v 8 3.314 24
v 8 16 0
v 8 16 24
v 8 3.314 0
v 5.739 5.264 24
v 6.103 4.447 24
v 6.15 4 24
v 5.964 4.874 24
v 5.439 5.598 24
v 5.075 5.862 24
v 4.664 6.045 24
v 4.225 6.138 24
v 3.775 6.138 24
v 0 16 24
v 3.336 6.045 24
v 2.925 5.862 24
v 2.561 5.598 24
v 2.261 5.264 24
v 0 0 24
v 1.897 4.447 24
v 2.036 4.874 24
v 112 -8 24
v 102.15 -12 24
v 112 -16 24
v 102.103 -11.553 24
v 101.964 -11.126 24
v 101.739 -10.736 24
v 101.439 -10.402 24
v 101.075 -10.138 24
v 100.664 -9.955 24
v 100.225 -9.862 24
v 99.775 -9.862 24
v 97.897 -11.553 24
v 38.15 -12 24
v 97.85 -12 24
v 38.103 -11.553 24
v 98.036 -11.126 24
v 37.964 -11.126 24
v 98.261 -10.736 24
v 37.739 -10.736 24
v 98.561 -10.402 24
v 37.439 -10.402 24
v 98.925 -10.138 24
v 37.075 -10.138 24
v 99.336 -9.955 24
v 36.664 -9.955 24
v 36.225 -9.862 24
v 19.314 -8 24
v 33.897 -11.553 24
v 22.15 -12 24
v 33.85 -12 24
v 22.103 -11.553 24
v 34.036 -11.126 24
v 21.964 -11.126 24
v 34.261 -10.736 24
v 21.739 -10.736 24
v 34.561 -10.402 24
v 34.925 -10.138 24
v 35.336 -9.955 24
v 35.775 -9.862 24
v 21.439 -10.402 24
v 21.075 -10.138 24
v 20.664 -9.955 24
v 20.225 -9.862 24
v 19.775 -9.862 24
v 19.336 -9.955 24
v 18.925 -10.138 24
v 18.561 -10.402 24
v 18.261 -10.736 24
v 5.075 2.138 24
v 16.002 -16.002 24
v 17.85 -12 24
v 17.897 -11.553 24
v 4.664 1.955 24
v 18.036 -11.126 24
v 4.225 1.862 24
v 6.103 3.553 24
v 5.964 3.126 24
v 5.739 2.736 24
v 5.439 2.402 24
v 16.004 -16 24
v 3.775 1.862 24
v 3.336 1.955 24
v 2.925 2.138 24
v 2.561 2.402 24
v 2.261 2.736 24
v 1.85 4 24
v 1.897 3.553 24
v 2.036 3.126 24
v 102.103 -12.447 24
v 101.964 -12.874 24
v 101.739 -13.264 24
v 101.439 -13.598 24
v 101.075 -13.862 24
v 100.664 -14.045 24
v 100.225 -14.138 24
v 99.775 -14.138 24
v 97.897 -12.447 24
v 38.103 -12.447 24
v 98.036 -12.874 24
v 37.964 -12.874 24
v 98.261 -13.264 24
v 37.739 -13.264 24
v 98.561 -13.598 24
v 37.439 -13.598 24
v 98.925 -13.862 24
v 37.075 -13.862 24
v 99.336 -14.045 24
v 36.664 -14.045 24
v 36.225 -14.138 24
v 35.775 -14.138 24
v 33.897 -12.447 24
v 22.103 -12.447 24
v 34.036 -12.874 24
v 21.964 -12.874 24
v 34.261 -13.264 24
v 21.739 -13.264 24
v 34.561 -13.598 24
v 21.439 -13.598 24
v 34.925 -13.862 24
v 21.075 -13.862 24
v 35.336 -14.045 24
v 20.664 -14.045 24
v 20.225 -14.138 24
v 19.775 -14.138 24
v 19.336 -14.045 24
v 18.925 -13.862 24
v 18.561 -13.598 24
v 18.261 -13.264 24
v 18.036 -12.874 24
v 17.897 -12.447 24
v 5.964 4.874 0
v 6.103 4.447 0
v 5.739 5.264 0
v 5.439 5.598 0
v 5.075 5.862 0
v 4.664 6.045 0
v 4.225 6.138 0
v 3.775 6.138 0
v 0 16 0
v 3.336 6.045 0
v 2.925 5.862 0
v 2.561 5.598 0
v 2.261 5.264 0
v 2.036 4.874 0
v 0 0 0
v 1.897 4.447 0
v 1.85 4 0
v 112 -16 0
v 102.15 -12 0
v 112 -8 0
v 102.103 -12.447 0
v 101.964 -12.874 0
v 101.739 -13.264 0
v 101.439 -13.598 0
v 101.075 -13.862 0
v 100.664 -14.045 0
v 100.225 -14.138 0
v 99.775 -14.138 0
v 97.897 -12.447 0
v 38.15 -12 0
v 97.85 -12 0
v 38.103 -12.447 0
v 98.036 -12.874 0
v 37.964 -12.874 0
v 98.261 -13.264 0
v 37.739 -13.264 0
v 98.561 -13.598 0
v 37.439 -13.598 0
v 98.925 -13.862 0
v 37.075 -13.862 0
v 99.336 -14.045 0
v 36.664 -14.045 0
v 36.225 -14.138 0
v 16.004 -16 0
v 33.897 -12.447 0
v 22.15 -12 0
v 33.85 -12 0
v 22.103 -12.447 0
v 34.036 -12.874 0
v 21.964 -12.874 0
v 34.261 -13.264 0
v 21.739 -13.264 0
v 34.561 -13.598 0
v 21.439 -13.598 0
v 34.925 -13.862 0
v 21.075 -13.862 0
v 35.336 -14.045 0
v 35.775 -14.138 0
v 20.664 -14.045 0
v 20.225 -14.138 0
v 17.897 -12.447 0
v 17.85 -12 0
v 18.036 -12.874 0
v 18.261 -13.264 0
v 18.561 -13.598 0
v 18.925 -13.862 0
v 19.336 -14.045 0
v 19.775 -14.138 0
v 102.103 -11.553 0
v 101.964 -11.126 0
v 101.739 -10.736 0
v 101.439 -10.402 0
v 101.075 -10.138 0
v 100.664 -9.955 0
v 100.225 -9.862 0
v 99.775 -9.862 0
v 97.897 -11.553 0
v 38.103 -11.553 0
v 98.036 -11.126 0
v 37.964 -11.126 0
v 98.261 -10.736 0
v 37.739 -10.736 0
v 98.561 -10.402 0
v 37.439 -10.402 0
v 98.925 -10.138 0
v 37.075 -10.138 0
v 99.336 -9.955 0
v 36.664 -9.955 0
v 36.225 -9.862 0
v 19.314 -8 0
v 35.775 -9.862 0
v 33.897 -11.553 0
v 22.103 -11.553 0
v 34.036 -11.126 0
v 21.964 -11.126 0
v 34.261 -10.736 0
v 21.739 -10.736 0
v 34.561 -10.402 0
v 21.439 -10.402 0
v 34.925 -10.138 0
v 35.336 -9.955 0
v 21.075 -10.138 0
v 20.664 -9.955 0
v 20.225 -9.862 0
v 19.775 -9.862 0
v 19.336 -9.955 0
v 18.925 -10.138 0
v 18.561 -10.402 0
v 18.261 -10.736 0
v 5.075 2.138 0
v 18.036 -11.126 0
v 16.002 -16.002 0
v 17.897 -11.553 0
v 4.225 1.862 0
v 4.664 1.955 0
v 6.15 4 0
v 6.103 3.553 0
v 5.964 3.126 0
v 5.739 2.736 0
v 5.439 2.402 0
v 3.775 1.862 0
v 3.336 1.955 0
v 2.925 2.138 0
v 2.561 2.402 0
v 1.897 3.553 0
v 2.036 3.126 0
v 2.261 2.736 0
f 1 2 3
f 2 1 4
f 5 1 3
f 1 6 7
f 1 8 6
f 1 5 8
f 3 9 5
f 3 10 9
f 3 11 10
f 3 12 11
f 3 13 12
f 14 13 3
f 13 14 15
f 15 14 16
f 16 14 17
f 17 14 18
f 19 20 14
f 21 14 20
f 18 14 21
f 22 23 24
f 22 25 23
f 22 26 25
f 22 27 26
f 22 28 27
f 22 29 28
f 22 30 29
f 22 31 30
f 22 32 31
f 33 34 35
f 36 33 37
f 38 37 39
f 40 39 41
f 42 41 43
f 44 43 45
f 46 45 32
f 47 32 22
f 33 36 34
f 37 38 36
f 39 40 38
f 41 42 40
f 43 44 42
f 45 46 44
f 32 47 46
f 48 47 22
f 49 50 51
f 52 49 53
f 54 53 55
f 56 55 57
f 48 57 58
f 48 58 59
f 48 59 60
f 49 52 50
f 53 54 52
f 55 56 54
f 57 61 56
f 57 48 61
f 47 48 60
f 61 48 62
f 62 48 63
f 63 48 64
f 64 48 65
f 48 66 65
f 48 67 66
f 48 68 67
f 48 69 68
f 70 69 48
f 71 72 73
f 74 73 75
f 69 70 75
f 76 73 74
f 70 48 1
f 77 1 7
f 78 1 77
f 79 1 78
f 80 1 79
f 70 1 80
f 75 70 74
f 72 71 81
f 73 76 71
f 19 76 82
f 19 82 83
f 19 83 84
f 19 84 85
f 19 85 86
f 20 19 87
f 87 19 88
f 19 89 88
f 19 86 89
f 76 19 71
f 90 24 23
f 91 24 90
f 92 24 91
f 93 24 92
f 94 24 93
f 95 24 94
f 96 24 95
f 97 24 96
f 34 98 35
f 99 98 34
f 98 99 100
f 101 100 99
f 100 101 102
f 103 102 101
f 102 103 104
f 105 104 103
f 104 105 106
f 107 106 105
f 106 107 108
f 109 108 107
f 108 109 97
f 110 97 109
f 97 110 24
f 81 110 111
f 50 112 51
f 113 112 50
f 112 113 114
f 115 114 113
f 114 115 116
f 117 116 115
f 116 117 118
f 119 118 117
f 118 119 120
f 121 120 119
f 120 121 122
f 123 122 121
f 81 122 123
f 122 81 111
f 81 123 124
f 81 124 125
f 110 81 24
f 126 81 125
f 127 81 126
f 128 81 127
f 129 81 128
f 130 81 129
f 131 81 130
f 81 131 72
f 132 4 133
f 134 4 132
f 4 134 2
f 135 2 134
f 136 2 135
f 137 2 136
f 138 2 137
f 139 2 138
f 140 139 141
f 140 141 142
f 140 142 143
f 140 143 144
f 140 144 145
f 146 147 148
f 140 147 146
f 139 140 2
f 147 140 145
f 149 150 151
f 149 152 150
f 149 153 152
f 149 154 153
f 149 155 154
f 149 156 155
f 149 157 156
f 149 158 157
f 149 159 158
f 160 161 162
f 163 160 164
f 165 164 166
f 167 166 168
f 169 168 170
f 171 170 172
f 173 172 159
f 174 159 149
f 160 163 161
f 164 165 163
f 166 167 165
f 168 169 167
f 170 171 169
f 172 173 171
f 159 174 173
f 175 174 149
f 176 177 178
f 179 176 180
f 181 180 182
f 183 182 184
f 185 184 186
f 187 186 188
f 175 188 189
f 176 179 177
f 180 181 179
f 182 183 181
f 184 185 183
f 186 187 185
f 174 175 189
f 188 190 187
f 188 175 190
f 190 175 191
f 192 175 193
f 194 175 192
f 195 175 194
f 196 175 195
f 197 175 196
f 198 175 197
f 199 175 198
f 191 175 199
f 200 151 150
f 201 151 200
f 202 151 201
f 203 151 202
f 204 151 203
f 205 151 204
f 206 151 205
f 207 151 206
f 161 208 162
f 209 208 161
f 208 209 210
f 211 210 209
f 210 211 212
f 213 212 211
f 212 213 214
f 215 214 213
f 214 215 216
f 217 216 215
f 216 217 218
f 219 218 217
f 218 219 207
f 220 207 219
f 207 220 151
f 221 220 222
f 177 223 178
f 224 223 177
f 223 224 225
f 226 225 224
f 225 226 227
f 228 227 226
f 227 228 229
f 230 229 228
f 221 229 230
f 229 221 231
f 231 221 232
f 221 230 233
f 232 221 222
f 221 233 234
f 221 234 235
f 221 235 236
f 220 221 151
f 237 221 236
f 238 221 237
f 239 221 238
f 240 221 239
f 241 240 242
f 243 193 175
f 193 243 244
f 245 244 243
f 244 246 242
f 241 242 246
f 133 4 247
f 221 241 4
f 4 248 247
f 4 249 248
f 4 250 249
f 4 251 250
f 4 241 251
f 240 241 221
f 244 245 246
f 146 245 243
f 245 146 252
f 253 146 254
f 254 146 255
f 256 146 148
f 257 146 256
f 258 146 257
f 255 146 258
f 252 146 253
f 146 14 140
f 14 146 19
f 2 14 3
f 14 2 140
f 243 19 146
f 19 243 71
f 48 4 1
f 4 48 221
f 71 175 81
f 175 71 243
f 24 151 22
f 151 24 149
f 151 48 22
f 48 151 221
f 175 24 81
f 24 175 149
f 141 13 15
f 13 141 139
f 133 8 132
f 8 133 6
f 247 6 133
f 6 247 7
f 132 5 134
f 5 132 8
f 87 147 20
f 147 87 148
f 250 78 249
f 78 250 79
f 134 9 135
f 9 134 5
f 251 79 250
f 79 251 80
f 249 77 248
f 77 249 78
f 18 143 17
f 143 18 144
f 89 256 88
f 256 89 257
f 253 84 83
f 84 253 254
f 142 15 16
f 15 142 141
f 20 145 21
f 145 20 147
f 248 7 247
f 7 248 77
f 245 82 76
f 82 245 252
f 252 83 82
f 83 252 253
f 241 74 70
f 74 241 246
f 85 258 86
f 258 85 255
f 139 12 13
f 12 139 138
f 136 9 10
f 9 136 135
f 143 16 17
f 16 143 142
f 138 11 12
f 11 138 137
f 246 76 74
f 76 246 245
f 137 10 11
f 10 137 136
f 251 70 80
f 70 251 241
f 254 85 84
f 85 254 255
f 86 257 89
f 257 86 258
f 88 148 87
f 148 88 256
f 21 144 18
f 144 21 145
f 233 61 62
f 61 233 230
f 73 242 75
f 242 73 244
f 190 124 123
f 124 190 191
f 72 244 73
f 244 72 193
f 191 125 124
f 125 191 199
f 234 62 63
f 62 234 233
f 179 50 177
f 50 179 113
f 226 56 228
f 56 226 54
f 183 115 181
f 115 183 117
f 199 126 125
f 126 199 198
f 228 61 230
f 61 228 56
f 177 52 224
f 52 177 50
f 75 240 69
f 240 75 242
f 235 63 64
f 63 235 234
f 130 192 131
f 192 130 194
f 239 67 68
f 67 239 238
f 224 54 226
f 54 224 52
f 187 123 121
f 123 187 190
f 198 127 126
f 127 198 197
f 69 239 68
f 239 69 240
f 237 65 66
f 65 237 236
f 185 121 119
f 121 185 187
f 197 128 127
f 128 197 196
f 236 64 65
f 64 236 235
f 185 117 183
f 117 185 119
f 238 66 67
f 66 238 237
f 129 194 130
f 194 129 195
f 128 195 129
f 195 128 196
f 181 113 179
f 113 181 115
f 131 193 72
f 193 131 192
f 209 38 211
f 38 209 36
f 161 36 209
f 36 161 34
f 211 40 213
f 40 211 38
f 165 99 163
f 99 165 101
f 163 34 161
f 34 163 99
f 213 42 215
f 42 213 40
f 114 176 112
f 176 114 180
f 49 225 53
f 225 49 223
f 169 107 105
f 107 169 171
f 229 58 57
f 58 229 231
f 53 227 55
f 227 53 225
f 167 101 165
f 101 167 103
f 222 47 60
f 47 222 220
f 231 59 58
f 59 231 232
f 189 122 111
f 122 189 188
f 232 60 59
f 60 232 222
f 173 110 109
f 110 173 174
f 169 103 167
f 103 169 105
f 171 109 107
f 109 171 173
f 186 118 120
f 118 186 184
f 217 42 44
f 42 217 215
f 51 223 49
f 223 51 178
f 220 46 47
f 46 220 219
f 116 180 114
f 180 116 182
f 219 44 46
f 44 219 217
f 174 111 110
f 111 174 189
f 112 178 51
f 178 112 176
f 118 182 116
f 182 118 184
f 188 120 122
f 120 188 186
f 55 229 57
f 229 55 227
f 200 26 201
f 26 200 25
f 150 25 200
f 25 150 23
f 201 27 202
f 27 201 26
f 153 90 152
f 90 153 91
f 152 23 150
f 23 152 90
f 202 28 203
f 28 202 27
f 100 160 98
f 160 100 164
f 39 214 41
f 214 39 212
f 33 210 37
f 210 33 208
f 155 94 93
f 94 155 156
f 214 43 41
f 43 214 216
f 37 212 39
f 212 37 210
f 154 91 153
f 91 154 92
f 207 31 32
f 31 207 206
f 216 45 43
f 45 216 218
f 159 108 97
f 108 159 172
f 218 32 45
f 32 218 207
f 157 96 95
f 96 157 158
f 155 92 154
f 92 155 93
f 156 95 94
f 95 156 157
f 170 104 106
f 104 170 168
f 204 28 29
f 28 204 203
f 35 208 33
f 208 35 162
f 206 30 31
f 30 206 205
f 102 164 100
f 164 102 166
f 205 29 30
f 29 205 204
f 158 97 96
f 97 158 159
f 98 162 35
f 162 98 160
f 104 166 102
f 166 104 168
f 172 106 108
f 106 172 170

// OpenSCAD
difference() {
union() {
    // Sections are numbered from top to bottom, left to right
    // Section 1
    cube([8,16,24]);
    
    // Section 2 at a 45º angle
    translate([5.6568,5.6568,0])
    rotate([0,0,225])
    cube([8,22.63,24]);
    
    // Section 3
    translate([16,-16,0])
    cube([96,8,24]);
    
}
    // Holes are numbered from top to bottom, left to right
    // Hole 1 (compatible with lego board)
    translate([4,4,-2])
    cylinder(r=2.15,44, $fn=30);

    // Hole 3
    translate([20,-12,-2])
    cylinder(r=2.15,45, $fn=30);

    // Hole 5 (compatible with lego board)
    translate([36,-12,-2])
    cylinder(r=2.15,45, $fn=30);
    
    // Hole 7
    translate([100,-12,-2])
    cylinder(r=2.15,44, $fn=30);   
}
